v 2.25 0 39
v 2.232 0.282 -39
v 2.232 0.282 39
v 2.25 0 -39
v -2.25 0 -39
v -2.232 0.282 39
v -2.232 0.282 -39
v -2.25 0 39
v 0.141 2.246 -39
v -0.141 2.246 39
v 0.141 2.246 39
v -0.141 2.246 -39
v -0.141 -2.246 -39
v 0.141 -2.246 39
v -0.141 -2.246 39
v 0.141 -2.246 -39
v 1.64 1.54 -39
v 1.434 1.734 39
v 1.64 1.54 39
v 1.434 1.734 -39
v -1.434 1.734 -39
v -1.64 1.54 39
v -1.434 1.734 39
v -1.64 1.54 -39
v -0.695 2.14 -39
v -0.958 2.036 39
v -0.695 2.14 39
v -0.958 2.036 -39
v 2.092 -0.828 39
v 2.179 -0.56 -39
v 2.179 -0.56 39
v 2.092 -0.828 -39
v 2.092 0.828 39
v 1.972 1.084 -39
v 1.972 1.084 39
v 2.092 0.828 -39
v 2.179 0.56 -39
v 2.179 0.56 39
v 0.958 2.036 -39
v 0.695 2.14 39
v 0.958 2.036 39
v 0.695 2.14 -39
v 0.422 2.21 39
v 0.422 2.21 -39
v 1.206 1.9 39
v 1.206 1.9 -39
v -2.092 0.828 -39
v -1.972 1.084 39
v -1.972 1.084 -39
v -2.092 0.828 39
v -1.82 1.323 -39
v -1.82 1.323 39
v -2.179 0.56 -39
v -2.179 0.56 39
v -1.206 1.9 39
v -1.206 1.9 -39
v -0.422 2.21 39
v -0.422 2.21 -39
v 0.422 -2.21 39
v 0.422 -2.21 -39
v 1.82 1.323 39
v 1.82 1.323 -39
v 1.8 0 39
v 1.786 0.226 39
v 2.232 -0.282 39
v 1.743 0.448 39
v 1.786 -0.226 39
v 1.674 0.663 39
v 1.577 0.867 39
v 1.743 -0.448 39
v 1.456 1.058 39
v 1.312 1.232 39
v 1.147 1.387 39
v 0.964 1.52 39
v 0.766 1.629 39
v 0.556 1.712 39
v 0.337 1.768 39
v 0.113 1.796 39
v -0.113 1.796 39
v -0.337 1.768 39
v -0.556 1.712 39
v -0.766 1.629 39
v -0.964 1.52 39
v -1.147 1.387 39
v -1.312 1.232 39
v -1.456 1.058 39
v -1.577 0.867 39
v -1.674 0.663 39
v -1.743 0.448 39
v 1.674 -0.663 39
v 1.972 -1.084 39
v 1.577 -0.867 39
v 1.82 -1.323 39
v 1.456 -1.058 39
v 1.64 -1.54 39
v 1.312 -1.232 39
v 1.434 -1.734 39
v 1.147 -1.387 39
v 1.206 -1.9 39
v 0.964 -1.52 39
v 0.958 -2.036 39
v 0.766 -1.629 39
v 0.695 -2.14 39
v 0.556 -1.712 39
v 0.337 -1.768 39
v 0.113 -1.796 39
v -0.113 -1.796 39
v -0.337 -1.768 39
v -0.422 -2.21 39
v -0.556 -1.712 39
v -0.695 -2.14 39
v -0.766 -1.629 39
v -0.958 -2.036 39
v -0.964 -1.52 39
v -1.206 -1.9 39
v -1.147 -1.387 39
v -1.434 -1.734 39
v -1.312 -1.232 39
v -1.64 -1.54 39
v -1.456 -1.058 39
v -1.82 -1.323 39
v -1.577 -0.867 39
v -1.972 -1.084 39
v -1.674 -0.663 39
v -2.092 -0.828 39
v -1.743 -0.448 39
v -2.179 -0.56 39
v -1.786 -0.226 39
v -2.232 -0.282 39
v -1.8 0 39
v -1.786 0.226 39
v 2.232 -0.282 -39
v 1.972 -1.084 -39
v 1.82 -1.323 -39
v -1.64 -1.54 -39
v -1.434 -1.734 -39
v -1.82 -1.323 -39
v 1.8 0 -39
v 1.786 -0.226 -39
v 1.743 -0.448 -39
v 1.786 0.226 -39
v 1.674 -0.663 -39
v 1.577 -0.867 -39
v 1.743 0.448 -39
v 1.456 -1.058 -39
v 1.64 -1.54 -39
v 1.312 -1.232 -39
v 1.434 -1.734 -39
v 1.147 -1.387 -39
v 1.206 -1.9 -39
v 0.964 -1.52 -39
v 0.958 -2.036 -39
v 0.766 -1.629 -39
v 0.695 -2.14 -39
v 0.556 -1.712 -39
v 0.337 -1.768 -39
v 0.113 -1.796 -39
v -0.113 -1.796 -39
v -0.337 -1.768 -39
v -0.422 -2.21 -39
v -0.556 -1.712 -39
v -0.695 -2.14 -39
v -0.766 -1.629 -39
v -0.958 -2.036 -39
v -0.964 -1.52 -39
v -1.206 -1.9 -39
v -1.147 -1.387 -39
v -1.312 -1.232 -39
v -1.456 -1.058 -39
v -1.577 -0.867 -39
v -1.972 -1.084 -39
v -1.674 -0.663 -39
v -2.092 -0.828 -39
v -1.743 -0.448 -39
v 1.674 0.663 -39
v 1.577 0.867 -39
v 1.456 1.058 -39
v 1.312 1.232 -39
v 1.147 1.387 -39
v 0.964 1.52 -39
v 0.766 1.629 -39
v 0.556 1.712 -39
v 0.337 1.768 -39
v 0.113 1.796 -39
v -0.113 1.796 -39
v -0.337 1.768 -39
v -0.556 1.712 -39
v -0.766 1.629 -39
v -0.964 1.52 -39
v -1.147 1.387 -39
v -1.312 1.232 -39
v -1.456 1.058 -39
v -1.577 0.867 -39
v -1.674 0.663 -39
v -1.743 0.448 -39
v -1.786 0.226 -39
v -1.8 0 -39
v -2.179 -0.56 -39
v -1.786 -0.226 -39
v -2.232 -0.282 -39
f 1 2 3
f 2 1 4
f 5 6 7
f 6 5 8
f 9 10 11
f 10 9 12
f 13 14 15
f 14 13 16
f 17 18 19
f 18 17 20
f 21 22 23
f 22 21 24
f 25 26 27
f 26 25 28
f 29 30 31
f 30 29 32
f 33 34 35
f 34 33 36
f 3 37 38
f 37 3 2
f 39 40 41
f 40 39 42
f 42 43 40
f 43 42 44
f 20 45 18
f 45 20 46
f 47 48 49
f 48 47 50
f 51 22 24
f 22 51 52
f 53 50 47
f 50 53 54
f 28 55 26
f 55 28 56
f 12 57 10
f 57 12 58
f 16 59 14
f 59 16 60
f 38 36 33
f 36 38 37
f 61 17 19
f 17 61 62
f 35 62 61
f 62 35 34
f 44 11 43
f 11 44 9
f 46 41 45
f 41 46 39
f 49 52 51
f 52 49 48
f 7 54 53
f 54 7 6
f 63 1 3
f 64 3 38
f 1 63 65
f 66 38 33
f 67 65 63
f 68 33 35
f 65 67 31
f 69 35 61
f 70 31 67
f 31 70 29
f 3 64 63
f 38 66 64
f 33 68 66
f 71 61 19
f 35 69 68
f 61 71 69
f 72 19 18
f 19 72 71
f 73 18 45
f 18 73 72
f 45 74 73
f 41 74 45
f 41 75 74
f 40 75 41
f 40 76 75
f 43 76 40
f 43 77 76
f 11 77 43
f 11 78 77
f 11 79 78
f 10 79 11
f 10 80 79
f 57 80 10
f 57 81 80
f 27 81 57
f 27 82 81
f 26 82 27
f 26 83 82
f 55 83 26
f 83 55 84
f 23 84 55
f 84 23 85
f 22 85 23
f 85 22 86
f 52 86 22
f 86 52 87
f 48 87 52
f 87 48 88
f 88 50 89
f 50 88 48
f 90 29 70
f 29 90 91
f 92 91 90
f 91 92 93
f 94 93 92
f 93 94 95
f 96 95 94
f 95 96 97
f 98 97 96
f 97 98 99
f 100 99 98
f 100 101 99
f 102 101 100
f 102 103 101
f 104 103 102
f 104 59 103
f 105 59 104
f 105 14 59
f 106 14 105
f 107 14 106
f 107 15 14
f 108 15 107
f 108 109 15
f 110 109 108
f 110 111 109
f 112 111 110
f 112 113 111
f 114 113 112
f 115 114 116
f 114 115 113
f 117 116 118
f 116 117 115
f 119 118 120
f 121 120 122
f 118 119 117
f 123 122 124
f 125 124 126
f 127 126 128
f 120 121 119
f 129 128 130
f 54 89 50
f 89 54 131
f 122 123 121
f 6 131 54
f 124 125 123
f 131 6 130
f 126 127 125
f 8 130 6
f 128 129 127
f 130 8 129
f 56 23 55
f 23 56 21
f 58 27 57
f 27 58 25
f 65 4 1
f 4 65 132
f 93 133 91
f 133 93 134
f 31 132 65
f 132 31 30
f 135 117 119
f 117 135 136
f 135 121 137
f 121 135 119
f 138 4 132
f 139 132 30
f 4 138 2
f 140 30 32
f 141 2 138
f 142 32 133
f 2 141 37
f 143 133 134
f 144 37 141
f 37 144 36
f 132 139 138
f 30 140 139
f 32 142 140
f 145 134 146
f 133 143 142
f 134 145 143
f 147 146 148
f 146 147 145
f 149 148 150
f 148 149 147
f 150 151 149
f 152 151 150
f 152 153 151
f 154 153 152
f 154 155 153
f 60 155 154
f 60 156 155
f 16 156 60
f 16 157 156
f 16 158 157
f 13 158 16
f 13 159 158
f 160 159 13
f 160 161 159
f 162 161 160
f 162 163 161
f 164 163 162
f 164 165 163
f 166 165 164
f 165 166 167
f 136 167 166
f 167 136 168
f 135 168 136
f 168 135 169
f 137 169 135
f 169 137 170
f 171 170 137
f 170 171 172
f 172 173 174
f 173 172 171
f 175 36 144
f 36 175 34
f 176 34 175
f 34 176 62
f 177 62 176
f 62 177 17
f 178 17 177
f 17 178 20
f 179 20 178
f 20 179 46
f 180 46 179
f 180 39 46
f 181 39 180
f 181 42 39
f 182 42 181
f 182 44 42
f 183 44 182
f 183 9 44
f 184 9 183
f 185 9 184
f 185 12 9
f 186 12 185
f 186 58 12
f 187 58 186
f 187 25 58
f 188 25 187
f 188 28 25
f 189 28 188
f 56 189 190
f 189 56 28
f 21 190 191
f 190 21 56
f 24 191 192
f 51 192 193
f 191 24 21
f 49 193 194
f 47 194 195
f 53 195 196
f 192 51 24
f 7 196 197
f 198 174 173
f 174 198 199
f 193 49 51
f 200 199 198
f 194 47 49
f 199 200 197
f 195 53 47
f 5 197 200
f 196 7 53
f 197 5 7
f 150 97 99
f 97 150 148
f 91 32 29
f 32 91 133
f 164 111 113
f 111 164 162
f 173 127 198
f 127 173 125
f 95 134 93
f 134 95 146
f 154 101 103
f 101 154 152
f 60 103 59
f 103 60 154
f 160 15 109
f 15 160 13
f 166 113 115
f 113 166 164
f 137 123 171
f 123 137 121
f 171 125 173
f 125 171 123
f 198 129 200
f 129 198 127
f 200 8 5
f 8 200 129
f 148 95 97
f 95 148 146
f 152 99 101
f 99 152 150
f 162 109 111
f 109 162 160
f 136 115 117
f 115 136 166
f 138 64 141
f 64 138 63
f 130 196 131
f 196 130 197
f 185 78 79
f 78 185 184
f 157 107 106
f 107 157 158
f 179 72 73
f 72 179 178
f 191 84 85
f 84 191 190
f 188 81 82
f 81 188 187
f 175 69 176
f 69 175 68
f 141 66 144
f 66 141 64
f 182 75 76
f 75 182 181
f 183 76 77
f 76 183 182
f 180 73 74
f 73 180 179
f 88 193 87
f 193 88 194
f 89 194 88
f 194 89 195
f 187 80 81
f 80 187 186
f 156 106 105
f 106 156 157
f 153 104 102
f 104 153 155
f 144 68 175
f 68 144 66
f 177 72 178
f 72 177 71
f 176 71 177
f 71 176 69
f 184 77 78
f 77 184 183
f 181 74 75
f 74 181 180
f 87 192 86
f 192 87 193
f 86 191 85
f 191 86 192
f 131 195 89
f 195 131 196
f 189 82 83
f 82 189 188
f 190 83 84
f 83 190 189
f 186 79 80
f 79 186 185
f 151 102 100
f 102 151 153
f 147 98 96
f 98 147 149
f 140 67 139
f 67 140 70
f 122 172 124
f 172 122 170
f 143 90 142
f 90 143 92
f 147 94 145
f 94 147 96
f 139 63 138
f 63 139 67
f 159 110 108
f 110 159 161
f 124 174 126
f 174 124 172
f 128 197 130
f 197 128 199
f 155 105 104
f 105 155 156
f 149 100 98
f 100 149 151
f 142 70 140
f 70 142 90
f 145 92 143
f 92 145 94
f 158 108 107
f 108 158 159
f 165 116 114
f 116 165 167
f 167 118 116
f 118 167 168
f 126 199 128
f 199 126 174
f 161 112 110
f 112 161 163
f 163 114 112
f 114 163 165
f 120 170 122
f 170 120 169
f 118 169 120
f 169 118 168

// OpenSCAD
$fn = 50;


difference() {
	union() {
		translate(v = [0, 0, -39.0000000000]) {
			cylinder(h = 78, r = 2.2500000000);
		}
	}
	union() {
		translate(v = [0, 0, -100.0000000000]) {
			cylinder(h = 200, r = 1.8000000000);
		}
	}
}
